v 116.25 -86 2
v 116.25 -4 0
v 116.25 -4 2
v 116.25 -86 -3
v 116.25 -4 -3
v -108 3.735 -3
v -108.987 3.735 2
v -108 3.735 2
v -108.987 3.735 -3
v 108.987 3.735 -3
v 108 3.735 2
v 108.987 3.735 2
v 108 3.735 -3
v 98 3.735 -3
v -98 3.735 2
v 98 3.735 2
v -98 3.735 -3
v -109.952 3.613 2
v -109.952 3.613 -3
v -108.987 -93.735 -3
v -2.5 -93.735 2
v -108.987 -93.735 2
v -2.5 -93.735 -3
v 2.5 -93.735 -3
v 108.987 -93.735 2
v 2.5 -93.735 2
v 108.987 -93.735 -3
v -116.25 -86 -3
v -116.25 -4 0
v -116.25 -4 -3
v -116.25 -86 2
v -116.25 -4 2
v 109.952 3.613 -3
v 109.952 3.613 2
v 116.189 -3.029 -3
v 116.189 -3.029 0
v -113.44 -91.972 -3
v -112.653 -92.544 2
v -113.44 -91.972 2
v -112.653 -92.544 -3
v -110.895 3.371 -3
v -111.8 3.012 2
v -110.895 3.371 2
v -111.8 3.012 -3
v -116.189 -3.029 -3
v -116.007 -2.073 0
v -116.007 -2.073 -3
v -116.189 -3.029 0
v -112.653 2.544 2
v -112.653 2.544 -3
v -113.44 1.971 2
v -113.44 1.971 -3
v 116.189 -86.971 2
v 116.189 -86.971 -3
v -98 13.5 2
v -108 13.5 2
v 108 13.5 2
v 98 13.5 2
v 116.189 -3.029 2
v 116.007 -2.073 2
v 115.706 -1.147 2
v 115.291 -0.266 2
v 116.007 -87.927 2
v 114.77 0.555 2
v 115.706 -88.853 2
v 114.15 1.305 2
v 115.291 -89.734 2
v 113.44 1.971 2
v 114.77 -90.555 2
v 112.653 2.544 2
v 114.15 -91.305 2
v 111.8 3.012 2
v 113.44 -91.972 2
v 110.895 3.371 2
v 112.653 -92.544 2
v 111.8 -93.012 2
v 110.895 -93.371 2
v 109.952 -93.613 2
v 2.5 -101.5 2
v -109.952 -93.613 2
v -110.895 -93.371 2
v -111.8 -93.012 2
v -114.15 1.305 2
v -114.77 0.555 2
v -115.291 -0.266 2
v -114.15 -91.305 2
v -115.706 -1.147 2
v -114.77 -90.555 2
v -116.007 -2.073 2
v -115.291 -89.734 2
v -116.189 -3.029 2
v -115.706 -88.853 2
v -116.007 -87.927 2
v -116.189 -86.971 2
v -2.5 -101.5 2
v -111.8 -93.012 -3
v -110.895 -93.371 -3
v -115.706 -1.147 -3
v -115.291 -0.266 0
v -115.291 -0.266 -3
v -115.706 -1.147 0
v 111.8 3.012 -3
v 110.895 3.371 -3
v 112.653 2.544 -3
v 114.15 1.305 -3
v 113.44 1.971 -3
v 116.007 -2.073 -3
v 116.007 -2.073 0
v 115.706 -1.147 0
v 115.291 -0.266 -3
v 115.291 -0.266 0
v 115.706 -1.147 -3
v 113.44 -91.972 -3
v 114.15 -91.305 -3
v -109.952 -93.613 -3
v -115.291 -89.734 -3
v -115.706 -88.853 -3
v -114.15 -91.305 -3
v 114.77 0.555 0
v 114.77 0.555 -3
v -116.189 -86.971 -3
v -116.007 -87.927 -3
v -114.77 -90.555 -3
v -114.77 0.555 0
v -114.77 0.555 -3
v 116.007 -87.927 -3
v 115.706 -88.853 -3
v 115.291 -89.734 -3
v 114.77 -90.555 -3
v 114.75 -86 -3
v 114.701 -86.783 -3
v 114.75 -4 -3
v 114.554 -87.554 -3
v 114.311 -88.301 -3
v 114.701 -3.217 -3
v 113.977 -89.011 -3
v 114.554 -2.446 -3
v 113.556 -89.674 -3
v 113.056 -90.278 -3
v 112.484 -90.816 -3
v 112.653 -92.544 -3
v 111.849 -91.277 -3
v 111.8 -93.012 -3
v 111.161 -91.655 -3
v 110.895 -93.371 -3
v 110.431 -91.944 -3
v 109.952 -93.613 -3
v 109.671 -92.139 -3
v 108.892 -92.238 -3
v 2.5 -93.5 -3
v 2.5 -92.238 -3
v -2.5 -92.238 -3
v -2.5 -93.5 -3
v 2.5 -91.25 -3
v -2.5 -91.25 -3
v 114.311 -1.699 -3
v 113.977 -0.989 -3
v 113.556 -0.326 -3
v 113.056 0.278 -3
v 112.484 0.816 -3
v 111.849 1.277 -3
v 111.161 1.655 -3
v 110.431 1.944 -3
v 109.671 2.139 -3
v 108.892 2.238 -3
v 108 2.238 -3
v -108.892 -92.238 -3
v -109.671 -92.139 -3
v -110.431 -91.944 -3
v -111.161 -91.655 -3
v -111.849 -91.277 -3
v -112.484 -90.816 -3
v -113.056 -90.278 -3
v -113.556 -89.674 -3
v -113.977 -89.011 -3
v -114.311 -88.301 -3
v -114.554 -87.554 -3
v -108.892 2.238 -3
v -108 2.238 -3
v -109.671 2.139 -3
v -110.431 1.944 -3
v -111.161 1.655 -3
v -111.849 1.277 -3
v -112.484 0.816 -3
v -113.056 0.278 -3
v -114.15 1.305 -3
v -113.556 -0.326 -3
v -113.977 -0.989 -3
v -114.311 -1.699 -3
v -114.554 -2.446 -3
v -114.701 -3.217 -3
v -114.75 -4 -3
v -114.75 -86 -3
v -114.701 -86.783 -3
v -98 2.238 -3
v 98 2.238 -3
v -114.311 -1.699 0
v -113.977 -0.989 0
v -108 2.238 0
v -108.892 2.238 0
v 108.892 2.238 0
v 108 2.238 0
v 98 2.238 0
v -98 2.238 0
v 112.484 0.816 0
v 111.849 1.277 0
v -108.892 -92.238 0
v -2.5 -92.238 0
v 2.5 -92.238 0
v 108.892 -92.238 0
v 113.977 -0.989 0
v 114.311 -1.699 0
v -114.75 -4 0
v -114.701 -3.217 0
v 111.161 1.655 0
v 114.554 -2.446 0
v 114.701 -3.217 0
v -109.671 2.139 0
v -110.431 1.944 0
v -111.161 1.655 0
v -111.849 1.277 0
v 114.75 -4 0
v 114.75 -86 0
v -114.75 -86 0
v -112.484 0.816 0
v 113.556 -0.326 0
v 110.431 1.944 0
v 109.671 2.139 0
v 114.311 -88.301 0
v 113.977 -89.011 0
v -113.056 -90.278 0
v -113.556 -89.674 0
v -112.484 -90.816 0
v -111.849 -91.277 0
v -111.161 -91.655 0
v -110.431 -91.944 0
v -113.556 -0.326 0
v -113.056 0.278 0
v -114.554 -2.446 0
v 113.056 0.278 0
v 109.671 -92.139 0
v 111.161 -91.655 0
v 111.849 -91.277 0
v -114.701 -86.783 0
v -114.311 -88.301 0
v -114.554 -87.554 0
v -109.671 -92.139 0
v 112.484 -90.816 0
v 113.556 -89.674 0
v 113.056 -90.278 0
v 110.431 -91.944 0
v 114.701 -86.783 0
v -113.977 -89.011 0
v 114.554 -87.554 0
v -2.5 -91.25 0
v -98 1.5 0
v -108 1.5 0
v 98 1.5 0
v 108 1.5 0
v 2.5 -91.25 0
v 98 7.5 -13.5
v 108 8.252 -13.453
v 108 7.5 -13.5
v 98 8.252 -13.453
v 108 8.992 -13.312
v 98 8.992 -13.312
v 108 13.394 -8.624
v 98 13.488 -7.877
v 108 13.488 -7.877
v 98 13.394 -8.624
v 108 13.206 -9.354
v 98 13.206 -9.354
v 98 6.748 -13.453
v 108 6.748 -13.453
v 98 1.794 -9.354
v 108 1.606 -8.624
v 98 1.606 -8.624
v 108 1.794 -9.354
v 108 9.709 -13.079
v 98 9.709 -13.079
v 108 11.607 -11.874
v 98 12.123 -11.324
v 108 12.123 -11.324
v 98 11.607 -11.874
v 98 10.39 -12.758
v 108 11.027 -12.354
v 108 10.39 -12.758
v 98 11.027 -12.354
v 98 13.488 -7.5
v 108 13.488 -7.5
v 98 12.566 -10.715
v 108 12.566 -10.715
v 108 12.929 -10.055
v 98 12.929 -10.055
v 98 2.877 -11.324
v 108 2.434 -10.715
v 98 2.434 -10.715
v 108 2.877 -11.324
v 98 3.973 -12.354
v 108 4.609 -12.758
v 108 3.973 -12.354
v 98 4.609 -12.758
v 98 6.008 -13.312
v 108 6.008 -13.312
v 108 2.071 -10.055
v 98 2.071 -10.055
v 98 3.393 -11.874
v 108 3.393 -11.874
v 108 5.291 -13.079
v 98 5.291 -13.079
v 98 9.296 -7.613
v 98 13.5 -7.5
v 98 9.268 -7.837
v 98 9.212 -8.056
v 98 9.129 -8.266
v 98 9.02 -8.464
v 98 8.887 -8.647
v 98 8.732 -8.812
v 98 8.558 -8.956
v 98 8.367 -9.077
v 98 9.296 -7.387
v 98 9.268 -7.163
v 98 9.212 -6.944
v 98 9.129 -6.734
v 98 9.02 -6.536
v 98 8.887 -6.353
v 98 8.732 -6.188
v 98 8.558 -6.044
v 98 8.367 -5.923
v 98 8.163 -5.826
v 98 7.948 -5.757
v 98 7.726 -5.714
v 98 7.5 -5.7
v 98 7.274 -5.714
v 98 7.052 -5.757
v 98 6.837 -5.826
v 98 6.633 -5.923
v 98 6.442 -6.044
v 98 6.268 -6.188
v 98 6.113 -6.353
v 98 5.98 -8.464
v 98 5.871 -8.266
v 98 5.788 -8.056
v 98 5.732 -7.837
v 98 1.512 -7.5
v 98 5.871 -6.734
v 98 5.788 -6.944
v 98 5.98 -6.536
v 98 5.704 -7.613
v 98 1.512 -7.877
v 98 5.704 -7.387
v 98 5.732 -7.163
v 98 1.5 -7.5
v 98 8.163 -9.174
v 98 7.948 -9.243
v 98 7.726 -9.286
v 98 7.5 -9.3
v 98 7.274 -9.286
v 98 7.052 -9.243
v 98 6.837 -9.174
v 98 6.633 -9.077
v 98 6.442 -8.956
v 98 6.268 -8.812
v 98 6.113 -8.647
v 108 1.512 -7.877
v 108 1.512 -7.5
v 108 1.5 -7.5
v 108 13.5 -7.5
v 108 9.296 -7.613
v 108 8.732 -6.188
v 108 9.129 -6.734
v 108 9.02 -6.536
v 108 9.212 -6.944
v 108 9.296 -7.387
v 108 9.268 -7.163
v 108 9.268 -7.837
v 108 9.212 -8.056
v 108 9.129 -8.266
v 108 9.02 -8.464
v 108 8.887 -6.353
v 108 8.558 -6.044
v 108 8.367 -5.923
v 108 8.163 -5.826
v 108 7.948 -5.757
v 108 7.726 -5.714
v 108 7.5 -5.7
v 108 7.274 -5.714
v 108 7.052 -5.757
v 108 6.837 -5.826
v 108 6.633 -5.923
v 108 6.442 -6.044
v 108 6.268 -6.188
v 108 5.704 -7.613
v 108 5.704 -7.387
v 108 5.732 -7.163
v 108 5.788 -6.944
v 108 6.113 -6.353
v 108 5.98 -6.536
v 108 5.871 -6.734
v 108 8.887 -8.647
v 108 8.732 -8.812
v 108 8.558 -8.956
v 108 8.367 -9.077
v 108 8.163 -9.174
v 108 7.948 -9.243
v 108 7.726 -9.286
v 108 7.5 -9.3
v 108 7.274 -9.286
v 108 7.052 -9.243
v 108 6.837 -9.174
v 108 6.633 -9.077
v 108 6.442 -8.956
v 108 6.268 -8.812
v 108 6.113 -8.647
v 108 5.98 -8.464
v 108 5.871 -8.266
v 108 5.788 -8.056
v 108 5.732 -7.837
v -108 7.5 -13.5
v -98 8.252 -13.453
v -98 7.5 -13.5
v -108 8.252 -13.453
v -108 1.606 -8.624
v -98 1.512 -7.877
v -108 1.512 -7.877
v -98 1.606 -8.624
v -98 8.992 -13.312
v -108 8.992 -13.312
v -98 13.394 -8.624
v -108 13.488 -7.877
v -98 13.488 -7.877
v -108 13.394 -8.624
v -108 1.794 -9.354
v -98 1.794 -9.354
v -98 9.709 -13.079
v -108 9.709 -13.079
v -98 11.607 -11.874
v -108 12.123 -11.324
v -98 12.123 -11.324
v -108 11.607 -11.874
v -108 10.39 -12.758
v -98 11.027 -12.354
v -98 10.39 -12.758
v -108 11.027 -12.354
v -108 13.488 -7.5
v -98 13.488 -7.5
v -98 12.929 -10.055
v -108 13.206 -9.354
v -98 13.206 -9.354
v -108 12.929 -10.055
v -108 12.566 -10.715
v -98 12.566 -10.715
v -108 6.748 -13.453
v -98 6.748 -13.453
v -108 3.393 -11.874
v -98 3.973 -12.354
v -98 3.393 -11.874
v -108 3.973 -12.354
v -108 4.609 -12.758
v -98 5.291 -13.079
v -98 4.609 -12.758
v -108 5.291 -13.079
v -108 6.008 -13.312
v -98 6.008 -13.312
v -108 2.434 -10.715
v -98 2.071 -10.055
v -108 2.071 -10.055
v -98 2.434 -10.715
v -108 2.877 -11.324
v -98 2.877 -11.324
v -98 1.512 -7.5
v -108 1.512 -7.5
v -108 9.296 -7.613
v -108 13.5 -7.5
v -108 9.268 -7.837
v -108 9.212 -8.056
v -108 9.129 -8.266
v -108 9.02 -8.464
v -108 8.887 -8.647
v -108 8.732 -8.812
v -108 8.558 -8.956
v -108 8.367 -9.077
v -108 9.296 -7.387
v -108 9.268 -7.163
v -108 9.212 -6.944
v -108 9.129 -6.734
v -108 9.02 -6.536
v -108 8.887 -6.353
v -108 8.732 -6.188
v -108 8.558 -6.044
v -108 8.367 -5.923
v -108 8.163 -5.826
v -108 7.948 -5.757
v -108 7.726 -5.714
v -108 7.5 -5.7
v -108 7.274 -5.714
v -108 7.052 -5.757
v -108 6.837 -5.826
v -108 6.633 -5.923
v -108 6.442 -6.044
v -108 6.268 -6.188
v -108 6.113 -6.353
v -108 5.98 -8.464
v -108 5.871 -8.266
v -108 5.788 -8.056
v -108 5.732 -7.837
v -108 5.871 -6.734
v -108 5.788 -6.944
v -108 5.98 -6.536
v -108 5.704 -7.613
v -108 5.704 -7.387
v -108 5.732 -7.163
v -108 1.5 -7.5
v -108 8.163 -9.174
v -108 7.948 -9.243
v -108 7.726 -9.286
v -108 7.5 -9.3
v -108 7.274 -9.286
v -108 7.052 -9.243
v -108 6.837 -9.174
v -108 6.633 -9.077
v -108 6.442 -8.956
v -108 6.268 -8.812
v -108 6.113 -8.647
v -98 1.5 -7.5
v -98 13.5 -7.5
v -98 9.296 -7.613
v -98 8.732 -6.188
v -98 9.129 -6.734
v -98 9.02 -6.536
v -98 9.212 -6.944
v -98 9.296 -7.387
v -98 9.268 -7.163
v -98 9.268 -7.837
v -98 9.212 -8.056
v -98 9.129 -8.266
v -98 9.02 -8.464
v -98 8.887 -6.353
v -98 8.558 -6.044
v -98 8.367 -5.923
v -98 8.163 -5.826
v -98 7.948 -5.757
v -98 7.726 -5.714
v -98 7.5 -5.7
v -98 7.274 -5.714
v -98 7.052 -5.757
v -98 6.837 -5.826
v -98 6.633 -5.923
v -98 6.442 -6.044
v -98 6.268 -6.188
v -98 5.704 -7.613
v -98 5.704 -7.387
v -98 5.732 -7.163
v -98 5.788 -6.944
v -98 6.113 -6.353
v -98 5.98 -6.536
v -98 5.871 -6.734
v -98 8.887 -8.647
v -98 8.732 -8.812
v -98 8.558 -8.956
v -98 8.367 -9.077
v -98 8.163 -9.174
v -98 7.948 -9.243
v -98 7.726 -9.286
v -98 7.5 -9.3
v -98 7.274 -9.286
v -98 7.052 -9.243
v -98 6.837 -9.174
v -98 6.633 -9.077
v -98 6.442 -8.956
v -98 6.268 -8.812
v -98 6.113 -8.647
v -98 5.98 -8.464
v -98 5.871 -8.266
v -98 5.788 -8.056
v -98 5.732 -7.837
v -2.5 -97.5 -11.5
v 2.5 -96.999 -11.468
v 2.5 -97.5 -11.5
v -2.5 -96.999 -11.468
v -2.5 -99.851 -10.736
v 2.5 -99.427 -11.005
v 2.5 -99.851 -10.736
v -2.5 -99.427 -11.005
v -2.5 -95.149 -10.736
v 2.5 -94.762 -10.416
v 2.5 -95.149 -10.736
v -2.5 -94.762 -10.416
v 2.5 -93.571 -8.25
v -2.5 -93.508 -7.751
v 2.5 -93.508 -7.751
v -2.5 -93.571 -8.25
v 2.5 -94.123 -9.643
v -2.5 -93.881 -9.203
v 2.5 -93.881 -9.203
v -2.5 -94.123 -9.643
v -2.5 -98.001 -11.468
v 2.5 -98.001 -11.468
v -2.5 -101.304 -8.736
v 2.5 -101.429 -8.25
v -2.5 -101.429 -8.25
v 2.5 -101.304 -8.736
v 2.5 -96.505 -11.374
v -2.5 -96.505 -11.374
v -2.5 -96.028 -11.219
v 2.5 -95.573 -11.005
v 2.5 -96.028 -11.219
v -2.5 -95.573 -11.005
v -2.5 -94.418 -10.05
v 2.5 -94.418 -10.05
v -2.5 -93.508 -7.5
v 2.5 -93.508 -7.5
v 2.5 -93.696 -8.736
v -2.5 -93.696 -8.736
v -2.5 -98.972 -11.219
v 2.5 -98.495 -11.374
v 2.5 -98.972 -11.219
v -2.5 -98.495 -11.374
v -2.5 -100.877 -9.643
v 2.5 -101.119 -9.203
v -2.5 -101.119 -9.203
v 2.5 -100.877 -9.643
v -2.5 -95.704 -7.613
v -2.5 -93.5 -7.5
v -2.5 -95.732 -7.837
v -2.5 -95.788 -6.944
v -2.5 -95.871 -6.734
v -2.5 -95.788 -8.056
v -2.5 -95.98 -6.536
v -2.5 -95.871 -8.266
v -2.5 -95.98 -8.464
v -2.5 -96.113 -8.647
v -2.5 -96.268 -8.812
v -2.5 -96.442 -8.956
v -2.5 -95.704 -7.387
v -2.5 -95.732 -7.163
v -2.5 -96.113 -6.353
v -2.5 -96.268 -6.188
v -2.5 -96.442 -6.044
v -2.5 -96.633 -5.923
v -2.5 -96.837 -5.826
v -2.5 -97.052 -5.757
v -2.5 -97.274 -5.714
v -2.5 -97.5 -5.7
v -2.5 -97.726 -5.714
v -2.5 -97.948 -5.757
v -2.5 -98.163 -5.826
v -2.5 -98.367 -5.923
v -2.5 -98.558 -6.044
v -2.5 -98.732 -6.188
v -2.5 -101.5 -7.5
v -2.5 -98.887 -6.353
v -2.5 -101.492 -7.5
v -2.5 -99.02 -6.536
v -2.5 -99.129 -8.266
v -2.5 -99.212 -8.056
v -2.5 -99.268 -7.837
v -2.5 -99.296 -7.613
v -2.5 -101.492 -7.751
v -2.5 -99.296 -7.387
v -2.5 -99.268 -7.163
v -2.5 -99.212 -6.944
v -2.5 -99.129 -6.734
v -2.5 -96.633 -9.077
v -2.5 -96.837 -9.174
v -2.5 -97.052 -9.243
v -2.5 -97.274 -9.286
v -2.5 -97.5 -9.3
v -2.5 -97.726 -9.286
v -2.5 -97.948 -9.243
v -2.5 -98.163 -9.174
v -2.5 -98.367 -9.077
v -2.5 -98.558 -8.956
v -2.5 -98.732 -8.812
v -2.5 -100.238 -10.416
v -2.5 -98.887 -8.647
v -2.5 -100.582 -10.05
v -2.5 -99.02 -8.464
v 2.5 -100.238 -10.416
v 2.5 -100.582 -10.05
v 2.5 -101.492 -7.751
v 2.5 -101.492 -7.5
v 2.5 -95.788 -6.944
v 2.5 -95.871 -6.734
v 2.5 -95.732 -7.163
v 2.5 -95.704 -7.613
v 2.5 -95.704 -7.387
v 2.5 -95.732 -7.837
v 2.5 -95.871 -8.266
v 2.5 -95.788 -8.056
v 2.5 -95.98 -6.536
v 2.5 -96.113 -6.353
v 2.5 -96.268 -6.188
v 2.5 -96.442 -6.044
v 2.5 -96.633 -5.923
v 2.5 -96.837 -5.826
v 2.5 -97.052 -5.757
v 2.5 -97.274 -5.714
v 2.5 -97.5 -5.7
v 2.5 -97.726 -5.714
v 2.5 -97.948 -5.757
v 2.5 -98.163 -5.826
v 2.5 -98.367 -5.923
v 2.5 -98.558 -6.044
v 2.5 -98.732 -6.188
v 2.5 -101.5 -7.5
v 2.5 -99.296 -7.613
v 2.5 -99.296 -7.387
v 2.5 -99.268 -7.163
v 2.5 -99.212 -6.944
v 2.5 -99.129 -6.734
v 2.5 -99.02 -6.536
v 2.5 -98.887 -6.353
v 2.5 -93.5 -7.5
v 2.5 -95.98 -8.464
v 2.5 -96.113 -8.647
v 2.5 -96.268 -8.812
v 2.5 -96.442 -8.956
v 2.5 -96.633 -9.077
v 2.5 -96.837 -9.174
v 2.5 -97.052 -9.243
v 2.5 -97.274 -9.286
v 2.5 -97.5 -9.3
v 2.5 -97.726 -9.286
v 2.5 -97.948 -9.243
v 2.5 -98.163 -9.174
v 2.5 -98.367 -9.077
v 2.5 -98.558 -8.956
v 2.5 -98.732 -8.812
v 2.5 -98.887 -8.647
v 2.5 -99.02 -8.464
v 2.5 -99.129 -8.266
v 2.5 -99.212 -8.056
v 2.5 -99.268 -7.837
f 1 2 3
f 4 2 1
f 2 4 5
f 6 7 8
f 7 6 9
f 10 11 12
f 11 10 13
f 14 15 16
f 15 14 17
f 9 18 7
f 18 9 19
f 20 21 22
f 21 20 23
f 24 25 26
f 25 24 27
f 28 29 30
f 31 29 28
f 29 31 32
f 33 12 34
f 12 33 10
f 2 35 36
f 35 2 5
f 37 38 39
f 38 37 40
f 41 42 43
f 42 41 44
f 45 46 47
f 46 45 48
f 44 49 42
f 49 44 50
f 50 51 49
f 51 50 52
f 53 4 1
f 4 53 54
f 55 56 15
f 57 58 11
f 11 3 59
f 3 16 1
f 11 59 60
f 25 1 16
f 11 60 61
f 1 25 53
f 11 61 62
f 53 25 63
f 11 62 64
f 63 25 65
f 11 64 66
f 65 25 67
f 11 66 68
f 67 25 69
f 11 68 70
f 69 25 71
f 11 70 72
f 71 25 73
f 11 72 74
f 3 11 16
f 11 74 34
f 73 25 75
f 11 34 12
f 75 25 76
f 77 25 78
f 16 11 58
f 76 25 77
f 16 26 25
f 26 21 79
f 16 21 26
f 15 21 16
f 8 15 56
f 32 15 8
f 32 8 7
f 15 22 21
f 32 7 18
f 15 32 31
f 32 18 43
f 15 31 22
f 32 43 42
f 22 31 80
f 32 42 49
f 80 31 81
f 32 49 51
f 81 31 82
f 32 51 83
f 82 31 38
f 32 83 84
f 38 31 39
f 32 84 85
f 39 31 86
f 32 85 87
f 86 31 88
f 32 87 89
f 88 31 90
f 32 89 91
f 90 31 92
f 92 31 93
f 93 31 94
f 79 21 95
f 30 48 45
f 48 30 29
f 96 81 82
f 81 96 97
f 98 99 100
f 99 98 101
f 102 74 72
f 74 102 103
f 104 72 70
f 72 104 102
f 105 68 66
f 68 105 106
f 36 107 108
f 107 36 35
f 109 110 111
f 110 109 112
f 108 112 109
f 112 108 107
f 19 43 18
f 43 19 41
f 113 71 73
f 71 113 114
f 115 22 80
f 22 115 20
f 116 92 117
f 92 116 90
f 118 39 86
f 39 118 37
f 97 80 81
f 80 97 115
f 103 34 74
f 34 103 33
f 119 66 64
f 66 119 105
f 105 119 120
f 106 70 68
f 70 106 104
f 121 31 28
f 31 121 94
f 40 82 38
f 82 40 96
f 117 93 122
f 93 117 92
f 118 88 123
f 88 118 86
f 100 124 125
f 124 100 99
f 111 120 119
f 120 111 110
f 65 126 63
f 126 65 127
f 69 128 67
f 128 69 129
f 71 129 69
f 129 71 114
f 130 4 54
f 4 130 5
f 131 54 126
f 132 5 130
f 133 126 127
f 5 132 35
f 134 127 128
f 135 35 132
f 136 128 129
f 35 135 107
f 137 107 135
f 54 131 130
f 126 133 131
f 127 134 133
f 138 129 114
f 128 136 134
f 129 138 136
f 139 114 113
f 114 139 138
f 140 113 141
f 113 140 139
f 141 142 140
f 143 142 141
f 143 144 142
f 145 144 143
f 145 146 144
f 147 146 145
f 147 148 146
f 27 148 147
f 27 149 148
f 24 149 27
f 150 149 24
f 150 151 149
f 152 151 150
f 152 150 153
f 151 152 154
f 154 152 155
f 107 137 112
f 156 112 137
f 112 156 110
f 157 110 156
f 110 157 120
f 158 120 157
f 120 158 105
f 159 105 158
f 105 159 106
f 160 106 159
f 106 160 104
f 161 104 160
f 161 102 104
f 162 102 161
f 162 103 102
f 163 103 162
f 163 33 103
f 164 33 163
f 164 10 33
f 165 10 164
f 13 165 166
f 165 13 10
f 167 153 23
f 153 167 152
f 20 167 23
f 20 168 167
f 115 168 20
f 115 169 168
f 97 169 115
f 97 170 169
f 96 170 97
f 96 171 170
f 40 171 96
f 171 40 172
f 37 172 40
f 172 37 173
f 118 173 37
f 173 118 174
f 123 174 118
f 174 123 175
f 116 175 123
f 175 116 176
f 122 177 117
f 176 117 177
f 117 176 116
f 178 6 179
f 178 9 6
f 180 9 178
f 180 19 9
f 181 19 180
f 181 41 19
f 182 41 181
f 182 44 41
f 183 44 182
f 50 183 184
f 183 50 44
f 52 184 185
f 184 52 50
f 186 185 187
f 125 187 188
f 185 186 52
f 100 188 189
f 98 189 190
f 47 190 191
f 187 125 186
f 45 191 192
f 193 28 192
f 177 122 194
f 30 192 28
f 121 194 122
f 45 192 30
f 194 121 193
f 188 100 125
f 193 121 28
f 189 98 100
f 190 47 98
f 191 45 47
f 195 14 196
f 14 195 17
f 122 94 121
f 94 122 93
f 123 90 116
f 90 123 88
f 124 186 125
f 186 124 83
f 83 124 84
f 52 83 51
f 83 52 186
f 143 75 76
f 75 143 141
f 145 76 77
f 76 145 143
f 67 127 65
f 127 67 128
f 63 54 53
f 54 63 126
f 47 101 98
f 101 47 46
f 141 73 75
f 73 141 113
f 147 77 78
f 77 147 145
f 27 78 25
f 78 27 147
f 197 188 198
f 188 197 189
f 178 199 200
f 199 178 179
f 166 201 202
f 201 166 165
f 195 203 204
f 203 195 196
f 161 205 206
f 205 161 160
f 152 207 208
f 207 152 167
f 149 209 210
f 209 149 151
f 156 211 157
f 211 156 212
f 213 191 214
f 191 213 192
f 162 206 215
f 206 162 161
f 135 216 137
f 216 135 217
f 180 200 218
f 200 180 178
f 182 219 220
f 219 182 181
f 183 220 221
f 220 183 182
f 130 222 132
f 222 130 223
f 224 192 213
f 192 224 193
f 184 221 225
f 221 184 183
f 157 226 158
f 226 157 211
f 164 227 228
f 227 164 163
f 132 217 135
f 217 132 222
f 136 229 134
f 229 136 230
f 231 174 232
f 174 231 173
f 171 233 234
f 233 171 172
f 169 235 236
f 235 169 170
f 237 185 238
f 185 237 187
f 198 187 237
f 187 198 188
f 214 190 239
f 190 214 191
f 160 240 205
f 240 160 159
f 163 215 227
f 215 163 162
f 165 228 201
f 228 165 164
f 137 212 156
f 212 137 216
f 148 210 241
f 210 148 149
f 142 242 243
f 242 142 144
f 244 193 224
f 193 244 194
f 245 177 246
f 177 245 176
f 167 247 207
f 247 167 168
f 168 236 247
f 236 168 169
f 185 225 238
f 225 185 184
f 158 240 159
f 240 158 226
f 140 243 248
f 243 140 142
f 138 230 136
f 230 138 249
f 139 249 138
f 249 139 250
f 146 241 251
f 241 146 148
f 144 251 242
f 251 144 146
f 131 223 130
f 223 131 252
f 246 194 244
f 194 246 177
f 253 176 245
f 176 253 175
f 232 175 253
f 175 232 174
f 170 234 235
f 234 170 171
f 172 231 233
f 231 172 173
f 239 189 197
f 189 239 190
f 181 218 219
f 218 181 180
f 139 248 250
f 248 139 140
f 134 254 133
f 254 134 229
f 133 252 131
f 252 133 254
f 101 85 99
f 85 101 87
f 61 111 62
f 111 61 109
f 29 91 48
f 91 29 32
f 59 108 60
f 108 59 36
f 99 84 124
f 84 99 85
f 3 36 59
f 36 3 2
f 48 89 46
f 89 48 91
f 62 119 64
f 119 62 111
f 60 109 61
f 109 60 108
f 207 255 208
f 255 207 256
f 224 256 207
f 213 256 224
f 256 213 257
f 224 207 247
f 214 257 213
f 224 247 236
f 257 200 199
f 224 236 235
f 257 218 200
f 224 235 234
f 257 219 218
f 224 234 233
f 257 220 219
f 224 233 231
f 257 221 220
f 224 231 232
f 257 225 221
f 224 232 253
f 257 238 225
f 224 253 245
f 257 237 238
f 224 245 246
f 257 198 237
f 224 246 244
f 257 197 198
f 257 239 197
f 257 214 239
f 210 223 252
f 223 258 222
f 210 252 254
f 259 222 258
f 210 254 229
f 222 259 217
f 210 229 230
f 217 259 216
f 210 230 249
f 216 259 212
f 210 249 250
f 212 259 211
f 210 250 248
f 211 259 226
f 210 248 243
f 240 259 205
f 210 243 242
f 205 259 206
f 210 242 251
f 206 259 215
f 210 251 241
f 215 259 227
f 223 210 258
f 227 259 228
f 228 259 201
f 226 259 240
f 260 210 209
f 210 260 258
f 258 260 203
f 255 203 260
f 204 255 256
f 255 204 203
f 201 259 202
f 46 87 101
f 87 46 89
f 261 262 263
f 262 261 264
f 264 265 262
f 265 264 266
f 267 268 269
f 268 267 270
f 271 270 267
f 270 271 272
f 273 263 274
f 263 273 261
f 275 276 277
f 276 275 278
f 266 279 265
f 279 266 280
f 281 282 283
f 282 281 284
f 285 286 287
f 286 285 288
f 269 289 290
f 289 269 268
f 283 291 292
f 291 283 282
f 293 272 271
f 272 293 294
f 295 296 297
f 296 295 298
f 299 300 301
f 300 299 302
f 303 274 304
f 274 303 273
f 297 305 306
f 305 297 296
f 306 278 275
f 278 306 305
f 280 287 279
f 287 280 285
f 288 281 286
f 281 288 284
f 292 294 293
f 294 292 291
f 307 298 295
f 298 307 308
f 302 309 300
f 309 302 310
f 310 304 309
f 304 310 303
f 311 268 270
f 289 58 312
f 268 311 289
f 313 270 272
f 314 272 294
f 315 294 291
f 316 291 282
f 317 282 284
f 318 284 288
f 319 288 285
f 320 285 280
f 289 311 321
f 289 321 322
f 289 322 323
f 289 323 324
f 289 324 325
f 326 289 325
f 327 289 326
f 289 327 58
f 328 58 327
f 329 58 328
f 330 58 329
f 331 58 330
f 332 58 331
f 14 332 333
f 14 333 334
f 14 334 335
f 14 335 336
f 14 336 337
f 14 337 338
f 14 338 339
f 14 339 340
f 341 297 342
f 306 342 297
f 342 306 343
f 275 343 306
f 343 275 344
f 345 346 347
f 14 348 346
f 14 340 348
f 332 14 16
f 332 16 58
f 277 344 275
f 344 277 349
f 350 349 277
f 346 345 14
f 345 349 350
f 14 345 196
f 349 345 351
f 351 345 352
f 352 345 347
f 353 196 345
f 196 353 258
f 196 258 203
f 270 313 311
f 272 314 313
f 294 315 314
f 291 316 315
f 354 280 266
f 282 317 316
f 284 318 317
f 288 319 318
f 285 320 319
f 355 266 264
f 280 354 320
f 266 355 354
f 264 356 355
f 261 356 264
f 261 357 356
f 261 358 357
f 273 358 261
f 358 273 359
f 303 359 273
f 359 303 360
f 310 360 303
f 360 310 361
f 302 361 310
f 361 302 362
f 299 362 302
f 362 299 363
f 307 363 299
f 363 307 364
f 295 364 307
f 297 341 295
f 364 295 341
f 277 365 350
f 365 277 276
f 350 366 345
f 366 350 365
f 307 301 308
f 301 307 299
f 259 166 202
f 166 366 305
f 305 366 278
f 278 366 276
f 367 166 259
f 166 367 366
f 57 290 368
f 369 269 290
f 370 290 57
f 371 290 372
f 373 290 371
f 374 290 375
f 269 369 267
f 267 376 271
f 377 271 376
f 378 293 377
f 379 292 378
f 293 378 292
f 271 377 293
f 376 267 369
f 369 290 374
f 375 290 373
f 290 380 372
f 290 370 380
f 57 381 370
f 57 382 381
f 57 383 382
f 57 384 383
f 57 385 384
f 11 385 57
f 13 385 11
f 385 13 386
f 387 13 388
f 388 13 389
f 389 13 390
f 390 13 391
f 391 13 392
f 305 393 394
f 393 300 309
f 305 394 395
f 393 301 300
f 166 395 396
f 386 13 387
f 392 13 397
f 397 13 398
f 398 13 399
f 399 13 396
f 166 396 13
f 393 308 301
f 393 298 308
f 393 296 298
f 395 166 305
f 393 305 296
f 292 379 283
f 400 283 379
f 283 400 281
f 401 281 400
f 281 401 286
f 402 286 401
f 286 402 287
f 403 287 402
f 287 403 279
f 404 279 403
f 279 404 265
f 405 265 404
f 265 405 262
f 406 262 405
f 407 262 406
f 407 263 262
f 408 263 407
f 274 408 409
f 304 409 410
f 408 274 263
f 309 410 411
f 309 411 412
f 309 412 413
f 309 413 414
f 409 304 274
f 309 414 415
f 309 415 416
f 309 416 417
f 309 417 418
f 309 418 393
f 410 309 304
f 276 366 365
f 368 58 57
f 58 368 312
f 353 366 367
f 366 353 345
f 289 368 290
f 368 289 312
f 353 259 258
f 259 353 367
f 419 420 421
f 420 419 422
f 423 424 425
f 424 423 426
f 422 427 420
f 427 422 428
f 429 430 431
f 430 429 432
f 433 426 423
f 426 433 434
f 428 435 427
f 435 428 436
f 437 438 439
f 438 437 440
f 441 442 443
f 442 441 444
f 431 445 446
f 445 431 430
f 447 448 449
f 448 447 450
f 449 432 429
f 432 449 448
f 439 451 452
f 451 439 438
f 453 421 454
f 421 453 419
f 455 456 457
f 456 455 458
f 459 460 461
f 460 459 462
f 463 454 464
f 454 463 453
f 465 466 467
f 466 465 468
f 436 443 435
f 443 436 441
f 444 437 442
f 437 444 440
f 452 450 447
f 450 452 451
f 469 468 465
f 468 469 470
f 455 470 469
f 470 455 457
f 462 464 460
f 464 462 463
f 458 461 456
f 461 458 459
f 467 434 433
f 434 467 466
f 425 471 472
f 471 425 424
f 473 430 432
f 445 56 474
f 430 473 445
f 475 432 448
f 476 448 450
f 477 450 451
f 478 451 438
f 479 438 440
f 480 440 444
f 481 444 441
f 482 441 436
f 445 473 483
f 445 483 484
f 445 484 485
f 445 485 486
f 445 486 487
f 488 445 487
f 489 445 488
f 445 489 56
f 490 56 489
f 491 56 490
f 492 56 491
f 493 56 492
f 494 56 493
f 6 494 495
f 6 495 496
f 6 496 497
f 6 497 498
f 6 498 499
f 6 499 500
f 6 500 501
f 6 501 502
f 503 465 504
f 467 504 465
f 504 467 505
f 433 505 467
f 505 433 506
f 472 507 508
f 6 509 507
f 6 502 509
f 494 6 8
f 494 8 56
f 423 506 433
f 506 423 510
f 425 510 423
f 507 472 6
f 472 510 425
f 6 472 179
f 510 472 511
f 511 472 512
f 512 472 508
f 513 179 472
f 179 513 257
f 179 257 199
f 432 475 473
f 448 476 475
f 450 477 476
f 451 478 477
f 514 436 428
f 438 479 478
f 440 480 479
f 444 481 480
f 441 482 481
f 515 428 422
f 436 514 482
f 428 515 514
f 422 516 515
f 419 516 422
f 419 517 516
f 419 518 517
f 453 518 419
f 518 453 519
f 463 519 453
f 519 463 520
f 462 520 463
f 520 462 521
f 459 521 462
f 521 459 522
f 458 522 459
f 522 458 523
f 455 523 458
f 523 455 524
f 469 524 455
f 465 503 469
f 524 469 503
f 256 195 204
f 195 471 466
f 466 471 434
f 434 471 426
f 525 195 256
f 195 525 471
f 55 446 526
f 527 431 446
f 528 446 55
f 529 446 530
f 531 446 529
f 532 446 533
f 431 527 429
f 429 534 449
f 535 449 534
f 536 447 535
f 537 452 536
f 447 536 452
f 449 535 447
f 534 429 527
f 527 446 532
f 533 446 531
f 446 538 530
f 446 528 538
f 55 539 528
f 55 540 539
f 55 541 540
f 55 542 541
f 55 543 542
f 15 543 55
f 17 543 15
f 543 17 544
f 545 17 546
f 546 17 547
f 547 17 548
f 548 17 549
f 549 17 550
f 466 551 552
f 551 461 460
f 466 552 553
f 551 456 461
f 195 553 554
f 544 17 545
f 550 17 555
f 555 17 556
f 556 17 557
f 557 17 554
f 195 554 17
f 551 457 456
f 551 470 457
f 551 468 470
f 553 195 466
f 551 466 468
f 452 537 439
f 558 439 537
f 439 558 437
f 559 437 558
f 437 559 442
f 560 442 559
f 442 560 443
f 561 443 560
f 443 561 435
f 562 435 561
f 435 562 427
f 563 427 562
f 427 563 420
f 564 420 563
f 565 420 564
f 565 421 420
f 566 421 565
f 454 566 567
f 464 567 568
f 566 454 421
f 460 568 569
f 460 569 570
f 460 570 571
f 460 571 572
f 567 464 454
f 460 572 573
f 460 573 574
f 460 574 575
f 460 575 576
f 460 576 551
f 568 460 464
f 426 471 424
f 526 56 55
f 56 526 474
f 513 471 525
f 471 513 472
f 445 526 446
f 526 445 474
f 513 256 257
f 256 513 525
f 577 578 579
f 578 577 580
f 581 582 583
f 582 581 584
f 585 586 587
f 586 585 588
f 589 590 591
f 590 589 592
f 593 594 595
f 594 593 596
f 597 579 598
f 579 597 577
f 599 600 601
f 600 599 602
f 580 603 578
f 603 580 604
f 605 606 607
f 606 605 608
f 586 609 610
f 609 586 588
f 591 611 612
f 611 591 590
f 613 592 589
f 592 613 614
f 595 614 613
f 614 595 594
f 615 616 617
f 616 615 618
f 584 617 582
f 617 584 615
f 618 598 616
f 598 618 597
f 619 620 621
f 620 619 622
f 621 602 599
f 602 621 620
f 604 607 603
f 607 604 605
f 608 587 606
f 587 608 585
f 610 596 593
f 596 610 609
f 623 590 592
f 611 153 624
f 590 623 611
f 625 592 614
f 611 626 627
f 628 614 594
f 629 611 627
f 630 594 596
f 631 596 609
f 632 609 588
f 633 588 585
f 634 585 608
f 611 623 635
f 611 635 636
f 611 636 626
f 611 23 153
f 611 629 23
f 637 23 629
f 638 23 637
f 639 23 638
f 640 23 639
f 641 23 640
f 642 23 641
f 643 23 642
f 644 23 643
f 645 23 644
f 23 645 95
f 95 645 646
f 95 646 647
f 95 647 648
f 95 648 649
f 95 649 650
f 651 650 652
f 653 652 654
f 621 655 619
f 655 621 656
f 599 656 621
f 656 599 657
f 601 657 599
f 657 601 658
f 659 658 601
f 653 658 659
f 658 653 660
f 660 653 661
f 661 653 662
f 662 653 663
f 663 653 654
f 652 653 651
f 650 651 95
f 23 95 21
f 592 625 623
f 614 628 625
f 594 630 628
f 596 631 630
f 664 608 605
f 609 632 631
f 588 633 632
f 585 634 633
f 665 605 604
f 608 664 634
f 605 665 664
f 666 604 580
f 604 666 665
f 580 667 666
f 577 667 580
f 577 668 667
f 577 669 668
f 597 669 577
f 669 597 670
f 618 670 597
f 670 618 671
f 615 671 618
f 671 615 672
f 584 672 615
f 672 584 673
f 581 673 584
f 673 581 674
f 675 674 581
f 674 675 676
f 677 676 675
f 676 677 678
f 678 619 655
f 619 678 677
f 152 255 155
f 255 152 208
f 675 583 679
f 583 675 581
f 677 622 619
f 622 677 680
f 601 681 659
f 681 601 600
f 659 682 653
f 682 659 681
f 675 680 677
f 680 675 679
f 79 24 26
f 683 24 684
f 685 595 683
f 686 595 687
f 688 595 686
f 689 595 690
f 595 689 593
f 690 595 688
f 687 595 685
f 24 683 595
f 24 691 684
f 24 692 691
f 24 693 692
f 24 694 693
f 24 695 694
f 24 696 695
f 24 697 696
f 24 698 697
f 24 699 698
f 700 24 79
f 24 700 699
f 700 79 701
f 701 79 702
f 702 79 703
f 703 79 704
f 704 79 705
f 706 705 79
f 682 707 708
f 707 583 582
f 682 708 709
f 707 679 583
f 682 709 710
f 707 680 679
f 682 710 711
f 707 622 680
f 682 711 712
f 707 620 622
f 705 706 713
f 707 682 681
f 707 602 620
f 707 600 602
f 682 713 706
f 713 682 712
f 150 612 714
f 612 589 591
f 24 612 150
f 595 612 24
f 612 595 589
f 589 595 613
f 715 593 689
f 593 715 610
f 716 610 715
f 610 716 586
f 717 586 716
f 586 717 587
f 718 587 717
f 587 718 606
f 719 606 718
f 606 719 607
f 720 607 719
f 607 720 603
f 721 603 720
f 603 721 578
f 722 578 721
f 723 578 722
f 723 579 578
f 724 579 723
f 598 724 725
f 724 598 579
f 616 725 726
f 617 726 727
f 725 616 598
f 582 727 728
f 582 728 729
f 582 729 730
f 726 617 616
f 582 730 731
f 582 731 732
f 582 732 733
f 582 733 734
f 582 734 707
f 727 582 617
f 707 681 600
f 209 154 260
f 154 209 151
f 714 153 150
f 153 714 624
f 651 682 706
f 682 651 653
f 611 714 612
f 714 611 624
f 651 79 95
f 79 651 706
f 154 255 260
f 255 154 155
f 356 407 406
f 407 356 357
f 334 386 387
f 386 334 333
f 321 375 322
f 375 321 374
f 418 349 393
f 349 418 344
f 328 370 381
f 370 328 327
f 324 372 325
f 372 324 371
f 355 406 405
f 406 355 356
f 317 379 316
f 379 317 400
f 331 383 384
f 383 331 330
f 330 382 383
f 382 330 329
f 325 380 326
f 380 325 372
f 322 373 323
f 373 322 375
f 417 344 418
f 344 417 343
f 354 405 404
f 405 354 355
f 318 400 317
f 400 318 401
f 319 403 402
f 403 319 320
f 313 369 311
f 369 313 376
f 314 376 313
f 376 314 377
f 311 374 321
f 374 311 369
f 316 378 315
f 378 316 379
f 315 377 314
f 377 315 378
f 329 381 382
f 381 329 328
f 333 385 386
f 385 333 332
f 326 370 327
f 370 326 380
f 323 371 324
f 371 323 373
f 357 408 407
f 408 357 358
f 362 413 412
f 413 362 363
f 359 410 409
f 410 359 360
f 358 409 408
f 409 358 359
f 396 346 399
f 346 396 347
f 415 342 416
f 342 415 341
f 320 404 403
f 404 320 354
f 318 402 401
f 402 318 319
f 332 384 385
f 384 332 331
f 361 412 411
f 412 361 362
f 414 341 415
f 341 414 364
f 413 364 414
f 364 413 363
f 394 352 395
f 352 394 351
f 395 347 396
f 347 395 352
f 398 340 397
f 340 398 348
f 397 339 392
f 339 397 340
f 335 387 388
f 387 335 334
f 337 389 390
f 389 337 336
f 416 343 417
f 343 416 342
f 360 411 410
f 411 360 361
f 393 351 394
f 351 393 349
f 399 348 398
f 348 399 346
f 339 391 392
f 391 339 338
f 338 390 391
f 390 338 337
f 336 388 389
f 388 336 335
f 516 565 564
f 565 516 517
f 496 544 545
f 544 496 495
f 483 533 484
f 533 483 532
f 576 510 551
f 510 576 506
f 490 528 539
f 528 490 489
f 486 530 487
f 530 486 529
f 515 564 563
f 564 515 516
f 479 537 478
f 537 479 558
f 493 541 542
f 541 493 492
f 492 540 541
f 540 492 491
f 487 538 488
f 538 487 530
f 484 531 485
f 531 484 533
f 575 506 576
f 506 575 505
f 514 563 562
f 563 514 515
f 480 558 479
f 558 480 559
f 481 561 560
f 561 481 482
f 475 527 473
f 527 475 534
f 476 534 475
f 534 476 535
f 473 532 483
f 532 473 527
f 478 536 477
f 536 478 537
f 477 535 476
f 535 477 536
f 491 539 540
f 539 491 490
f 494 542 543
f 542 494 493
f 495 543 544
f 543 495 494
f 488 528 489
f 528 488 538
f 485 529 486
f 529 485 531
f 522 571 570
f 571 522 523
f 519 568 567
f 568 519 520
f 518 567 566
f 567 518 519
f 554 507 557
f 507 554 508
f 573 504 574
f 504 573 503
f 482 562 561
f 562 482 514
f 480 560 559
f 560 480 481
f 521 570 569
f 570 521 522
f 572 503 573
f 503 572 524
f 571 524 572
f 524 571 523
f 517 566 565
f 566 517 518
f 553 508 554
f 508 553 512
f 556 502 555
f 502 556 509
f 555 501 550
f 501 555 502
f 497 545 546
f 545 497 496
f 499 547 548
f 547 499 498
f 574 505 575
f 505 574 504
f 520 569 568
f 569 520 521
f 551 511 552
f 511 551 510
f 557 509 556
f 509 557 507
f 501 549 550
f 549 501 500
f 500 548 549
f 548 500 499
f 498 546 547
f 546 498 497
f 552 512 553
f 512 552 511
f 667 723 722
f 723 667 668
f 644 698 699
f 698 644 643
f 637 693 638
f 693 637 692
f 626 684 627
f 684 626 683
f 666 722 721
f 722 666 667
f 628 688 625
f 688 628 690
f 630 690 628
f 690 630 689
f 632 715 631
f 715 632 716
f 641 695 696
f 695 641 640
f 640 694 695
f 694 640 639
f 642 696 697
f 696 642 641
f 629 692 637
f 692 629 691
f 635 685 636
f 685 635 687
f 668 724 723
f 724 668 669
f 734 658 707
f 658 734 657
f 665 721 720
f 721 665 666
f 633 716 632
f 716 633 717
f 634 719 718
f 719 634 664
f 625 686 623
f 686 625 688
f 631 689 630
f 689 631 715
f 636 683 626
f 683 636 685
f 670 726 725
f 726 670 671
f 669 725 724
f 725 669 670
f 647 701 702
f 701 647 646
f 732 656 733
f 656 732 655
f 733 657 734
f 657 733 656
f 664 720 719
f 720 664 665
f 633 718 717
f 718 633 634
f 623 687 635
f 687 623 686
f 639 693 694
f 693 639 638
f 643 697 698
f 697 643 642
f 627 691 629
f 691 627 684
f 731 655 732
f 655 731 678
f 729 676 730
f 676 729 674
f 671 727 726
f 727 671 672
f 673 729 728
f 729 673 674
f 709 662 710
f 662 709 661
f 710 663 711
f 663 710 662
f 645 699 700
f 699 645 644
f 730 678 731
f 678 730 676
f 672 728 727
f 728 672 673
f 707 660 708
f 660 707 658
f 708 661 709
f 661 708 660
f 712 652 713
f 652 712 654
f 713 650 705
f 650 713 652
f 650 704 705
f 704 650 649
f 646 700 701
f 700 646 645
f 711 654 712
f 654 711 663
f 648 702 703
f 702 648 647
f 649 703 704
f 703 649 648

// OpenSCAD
$fn = 50;


difference() {
	union() {
		translate(v = [0, -45.0000000000, -3]) {
			rotate(a = [0, 0, 0]) {
				difference() {
					union() {
						hull() {
							translate(v = [-108.5000000000, 41.0000000000, 0]) {
								cylinder(h = 5, r = 7.7500000000);
							}
							translate(v = [108.5000000000, 41.0000000000, 0]) {
								cylinder(h = 5, r = 7.7500000000);
							}
							translate(v = [-108.5000000000, -41.0000000000, 0]) {
								cylinder(h = 5, r = 7.7500000000);
							}
							translate(v = [108.5000000000, -41.0000000000, 0]) {
								cylinder(h = 5, r = 7.7500000000);
							}
						}
					}
					union() {
						hull() {
							translate(v = [-108.5000000000, 41.0000000000, 0]) {
								cylinder(h = 5, r = 6.2500000000);
							}
							translate(v = [108.5000000000, 41.0000000000, 0]) {
								cylinder(h = 5, r = 6.2500000000);
							}
							translate(v = [-108.5000000000, -41.0000000000, 0]) {
								cylinder(h = 5, r = 6.2500000000);
							}
							translate(v = [108.5000000000, -41.0000000000, 0]) {
								cylinder(h = 5, r = 6.2500000000);
							}
						}
					}
				}
			}
		}
		translate(v = [0, -45.0000000000, 0]) {
			hull() {
				translate(v = [-108.5000000000, 41.0000000000, 0]) {
					cylinder(h = 2, r = 7.7500000000);
				}
				translate(v = [108.5000000000, 41.0000000000, 0]) {
					cylinder(h = 2, r = 7.7500000000);
				}
				translate(v = [-108.5000000000, -41.0000000000, 0]) {
					cylinder(h = 2, r = 7.7500000000);
				}
				translate(v = [108.5000000000, -41.0000000000, 0]) {
					cylinder(h = 2, r = 7.7500000000);
				}
			}
		}
		translate(v = [98.0000000000, 7.5000000000, -7.5000000000]) {
			rotate(a = [0, 90, 0]) {
				cylinder(h = 10, r = 6.0000000000);
			}
		}
		translate(v = [98.0000000000, 1.5000000000, -7.5000000000]) {
			cube(size = [10, 12, 7.5000000000]);
		}
		translate(v = [98.0000000000, -15.0000000000, 0.0000000000]) {
			cube(size = [10, 28.5000000000, 2]);
		}
		translate(v = [-108.0000000000, 7.5000000000, -7.5000000000]) {
			rotate(a = [0, 90, 0]) {
				cylinder(h = 10, r = 6.0000000000);
			}
		}
		translate(v = [-108.0000000000, 1.5000000000, -7.5000000000]) {
			cube(size = [10, 12, 7.5000000000]);
		}
		translate(v = [-108.0000000000, -15.0000000000, 0.0000000000]) {
			cube(size = [10, 28.5000000000, 2]);
		}
		translate(v = [-2.5000000000, -97.5000000000, -7.5000000000]) {
			rotate(a = [0, 90, 0]) {
				cylinder(h = 5, r = 4.0000000000);
			}
		}
		translate(v = [-2.5000000000, -101.5000000000, -7.5000000000]) {
			cube(size = [5, 8, 7.5000000000]);
		}
		translate(v = [-2.5000000000, -101.5000000000, -3.0000000000]) {
			cube(size = [5, 10.2500000000, 5]);
		}
	}
	union() {
		translate(v = [98.0000000000, 7.5000000000, -7.5000000000]) {
			rotate(a = [0, 90, 0]) {
				cylinder(h = 10, r = 1.8000000000);
			}
		}
		translate(v = [-108.0000000000, 7.5000000000, -7.5000000000]) {
			rotate(a = [0, 90, 0]) {
				cylinder(h = 10, r = 1.8000000000);
			}
		}
		translate(v = [-5.0000000000, -97.5000000000, -7.5000000000]) {
			rotate(a = [0, 90, 0]) {
				cylinder(h = 10, r = 1.8000000000);
			}
		}
	}
}
